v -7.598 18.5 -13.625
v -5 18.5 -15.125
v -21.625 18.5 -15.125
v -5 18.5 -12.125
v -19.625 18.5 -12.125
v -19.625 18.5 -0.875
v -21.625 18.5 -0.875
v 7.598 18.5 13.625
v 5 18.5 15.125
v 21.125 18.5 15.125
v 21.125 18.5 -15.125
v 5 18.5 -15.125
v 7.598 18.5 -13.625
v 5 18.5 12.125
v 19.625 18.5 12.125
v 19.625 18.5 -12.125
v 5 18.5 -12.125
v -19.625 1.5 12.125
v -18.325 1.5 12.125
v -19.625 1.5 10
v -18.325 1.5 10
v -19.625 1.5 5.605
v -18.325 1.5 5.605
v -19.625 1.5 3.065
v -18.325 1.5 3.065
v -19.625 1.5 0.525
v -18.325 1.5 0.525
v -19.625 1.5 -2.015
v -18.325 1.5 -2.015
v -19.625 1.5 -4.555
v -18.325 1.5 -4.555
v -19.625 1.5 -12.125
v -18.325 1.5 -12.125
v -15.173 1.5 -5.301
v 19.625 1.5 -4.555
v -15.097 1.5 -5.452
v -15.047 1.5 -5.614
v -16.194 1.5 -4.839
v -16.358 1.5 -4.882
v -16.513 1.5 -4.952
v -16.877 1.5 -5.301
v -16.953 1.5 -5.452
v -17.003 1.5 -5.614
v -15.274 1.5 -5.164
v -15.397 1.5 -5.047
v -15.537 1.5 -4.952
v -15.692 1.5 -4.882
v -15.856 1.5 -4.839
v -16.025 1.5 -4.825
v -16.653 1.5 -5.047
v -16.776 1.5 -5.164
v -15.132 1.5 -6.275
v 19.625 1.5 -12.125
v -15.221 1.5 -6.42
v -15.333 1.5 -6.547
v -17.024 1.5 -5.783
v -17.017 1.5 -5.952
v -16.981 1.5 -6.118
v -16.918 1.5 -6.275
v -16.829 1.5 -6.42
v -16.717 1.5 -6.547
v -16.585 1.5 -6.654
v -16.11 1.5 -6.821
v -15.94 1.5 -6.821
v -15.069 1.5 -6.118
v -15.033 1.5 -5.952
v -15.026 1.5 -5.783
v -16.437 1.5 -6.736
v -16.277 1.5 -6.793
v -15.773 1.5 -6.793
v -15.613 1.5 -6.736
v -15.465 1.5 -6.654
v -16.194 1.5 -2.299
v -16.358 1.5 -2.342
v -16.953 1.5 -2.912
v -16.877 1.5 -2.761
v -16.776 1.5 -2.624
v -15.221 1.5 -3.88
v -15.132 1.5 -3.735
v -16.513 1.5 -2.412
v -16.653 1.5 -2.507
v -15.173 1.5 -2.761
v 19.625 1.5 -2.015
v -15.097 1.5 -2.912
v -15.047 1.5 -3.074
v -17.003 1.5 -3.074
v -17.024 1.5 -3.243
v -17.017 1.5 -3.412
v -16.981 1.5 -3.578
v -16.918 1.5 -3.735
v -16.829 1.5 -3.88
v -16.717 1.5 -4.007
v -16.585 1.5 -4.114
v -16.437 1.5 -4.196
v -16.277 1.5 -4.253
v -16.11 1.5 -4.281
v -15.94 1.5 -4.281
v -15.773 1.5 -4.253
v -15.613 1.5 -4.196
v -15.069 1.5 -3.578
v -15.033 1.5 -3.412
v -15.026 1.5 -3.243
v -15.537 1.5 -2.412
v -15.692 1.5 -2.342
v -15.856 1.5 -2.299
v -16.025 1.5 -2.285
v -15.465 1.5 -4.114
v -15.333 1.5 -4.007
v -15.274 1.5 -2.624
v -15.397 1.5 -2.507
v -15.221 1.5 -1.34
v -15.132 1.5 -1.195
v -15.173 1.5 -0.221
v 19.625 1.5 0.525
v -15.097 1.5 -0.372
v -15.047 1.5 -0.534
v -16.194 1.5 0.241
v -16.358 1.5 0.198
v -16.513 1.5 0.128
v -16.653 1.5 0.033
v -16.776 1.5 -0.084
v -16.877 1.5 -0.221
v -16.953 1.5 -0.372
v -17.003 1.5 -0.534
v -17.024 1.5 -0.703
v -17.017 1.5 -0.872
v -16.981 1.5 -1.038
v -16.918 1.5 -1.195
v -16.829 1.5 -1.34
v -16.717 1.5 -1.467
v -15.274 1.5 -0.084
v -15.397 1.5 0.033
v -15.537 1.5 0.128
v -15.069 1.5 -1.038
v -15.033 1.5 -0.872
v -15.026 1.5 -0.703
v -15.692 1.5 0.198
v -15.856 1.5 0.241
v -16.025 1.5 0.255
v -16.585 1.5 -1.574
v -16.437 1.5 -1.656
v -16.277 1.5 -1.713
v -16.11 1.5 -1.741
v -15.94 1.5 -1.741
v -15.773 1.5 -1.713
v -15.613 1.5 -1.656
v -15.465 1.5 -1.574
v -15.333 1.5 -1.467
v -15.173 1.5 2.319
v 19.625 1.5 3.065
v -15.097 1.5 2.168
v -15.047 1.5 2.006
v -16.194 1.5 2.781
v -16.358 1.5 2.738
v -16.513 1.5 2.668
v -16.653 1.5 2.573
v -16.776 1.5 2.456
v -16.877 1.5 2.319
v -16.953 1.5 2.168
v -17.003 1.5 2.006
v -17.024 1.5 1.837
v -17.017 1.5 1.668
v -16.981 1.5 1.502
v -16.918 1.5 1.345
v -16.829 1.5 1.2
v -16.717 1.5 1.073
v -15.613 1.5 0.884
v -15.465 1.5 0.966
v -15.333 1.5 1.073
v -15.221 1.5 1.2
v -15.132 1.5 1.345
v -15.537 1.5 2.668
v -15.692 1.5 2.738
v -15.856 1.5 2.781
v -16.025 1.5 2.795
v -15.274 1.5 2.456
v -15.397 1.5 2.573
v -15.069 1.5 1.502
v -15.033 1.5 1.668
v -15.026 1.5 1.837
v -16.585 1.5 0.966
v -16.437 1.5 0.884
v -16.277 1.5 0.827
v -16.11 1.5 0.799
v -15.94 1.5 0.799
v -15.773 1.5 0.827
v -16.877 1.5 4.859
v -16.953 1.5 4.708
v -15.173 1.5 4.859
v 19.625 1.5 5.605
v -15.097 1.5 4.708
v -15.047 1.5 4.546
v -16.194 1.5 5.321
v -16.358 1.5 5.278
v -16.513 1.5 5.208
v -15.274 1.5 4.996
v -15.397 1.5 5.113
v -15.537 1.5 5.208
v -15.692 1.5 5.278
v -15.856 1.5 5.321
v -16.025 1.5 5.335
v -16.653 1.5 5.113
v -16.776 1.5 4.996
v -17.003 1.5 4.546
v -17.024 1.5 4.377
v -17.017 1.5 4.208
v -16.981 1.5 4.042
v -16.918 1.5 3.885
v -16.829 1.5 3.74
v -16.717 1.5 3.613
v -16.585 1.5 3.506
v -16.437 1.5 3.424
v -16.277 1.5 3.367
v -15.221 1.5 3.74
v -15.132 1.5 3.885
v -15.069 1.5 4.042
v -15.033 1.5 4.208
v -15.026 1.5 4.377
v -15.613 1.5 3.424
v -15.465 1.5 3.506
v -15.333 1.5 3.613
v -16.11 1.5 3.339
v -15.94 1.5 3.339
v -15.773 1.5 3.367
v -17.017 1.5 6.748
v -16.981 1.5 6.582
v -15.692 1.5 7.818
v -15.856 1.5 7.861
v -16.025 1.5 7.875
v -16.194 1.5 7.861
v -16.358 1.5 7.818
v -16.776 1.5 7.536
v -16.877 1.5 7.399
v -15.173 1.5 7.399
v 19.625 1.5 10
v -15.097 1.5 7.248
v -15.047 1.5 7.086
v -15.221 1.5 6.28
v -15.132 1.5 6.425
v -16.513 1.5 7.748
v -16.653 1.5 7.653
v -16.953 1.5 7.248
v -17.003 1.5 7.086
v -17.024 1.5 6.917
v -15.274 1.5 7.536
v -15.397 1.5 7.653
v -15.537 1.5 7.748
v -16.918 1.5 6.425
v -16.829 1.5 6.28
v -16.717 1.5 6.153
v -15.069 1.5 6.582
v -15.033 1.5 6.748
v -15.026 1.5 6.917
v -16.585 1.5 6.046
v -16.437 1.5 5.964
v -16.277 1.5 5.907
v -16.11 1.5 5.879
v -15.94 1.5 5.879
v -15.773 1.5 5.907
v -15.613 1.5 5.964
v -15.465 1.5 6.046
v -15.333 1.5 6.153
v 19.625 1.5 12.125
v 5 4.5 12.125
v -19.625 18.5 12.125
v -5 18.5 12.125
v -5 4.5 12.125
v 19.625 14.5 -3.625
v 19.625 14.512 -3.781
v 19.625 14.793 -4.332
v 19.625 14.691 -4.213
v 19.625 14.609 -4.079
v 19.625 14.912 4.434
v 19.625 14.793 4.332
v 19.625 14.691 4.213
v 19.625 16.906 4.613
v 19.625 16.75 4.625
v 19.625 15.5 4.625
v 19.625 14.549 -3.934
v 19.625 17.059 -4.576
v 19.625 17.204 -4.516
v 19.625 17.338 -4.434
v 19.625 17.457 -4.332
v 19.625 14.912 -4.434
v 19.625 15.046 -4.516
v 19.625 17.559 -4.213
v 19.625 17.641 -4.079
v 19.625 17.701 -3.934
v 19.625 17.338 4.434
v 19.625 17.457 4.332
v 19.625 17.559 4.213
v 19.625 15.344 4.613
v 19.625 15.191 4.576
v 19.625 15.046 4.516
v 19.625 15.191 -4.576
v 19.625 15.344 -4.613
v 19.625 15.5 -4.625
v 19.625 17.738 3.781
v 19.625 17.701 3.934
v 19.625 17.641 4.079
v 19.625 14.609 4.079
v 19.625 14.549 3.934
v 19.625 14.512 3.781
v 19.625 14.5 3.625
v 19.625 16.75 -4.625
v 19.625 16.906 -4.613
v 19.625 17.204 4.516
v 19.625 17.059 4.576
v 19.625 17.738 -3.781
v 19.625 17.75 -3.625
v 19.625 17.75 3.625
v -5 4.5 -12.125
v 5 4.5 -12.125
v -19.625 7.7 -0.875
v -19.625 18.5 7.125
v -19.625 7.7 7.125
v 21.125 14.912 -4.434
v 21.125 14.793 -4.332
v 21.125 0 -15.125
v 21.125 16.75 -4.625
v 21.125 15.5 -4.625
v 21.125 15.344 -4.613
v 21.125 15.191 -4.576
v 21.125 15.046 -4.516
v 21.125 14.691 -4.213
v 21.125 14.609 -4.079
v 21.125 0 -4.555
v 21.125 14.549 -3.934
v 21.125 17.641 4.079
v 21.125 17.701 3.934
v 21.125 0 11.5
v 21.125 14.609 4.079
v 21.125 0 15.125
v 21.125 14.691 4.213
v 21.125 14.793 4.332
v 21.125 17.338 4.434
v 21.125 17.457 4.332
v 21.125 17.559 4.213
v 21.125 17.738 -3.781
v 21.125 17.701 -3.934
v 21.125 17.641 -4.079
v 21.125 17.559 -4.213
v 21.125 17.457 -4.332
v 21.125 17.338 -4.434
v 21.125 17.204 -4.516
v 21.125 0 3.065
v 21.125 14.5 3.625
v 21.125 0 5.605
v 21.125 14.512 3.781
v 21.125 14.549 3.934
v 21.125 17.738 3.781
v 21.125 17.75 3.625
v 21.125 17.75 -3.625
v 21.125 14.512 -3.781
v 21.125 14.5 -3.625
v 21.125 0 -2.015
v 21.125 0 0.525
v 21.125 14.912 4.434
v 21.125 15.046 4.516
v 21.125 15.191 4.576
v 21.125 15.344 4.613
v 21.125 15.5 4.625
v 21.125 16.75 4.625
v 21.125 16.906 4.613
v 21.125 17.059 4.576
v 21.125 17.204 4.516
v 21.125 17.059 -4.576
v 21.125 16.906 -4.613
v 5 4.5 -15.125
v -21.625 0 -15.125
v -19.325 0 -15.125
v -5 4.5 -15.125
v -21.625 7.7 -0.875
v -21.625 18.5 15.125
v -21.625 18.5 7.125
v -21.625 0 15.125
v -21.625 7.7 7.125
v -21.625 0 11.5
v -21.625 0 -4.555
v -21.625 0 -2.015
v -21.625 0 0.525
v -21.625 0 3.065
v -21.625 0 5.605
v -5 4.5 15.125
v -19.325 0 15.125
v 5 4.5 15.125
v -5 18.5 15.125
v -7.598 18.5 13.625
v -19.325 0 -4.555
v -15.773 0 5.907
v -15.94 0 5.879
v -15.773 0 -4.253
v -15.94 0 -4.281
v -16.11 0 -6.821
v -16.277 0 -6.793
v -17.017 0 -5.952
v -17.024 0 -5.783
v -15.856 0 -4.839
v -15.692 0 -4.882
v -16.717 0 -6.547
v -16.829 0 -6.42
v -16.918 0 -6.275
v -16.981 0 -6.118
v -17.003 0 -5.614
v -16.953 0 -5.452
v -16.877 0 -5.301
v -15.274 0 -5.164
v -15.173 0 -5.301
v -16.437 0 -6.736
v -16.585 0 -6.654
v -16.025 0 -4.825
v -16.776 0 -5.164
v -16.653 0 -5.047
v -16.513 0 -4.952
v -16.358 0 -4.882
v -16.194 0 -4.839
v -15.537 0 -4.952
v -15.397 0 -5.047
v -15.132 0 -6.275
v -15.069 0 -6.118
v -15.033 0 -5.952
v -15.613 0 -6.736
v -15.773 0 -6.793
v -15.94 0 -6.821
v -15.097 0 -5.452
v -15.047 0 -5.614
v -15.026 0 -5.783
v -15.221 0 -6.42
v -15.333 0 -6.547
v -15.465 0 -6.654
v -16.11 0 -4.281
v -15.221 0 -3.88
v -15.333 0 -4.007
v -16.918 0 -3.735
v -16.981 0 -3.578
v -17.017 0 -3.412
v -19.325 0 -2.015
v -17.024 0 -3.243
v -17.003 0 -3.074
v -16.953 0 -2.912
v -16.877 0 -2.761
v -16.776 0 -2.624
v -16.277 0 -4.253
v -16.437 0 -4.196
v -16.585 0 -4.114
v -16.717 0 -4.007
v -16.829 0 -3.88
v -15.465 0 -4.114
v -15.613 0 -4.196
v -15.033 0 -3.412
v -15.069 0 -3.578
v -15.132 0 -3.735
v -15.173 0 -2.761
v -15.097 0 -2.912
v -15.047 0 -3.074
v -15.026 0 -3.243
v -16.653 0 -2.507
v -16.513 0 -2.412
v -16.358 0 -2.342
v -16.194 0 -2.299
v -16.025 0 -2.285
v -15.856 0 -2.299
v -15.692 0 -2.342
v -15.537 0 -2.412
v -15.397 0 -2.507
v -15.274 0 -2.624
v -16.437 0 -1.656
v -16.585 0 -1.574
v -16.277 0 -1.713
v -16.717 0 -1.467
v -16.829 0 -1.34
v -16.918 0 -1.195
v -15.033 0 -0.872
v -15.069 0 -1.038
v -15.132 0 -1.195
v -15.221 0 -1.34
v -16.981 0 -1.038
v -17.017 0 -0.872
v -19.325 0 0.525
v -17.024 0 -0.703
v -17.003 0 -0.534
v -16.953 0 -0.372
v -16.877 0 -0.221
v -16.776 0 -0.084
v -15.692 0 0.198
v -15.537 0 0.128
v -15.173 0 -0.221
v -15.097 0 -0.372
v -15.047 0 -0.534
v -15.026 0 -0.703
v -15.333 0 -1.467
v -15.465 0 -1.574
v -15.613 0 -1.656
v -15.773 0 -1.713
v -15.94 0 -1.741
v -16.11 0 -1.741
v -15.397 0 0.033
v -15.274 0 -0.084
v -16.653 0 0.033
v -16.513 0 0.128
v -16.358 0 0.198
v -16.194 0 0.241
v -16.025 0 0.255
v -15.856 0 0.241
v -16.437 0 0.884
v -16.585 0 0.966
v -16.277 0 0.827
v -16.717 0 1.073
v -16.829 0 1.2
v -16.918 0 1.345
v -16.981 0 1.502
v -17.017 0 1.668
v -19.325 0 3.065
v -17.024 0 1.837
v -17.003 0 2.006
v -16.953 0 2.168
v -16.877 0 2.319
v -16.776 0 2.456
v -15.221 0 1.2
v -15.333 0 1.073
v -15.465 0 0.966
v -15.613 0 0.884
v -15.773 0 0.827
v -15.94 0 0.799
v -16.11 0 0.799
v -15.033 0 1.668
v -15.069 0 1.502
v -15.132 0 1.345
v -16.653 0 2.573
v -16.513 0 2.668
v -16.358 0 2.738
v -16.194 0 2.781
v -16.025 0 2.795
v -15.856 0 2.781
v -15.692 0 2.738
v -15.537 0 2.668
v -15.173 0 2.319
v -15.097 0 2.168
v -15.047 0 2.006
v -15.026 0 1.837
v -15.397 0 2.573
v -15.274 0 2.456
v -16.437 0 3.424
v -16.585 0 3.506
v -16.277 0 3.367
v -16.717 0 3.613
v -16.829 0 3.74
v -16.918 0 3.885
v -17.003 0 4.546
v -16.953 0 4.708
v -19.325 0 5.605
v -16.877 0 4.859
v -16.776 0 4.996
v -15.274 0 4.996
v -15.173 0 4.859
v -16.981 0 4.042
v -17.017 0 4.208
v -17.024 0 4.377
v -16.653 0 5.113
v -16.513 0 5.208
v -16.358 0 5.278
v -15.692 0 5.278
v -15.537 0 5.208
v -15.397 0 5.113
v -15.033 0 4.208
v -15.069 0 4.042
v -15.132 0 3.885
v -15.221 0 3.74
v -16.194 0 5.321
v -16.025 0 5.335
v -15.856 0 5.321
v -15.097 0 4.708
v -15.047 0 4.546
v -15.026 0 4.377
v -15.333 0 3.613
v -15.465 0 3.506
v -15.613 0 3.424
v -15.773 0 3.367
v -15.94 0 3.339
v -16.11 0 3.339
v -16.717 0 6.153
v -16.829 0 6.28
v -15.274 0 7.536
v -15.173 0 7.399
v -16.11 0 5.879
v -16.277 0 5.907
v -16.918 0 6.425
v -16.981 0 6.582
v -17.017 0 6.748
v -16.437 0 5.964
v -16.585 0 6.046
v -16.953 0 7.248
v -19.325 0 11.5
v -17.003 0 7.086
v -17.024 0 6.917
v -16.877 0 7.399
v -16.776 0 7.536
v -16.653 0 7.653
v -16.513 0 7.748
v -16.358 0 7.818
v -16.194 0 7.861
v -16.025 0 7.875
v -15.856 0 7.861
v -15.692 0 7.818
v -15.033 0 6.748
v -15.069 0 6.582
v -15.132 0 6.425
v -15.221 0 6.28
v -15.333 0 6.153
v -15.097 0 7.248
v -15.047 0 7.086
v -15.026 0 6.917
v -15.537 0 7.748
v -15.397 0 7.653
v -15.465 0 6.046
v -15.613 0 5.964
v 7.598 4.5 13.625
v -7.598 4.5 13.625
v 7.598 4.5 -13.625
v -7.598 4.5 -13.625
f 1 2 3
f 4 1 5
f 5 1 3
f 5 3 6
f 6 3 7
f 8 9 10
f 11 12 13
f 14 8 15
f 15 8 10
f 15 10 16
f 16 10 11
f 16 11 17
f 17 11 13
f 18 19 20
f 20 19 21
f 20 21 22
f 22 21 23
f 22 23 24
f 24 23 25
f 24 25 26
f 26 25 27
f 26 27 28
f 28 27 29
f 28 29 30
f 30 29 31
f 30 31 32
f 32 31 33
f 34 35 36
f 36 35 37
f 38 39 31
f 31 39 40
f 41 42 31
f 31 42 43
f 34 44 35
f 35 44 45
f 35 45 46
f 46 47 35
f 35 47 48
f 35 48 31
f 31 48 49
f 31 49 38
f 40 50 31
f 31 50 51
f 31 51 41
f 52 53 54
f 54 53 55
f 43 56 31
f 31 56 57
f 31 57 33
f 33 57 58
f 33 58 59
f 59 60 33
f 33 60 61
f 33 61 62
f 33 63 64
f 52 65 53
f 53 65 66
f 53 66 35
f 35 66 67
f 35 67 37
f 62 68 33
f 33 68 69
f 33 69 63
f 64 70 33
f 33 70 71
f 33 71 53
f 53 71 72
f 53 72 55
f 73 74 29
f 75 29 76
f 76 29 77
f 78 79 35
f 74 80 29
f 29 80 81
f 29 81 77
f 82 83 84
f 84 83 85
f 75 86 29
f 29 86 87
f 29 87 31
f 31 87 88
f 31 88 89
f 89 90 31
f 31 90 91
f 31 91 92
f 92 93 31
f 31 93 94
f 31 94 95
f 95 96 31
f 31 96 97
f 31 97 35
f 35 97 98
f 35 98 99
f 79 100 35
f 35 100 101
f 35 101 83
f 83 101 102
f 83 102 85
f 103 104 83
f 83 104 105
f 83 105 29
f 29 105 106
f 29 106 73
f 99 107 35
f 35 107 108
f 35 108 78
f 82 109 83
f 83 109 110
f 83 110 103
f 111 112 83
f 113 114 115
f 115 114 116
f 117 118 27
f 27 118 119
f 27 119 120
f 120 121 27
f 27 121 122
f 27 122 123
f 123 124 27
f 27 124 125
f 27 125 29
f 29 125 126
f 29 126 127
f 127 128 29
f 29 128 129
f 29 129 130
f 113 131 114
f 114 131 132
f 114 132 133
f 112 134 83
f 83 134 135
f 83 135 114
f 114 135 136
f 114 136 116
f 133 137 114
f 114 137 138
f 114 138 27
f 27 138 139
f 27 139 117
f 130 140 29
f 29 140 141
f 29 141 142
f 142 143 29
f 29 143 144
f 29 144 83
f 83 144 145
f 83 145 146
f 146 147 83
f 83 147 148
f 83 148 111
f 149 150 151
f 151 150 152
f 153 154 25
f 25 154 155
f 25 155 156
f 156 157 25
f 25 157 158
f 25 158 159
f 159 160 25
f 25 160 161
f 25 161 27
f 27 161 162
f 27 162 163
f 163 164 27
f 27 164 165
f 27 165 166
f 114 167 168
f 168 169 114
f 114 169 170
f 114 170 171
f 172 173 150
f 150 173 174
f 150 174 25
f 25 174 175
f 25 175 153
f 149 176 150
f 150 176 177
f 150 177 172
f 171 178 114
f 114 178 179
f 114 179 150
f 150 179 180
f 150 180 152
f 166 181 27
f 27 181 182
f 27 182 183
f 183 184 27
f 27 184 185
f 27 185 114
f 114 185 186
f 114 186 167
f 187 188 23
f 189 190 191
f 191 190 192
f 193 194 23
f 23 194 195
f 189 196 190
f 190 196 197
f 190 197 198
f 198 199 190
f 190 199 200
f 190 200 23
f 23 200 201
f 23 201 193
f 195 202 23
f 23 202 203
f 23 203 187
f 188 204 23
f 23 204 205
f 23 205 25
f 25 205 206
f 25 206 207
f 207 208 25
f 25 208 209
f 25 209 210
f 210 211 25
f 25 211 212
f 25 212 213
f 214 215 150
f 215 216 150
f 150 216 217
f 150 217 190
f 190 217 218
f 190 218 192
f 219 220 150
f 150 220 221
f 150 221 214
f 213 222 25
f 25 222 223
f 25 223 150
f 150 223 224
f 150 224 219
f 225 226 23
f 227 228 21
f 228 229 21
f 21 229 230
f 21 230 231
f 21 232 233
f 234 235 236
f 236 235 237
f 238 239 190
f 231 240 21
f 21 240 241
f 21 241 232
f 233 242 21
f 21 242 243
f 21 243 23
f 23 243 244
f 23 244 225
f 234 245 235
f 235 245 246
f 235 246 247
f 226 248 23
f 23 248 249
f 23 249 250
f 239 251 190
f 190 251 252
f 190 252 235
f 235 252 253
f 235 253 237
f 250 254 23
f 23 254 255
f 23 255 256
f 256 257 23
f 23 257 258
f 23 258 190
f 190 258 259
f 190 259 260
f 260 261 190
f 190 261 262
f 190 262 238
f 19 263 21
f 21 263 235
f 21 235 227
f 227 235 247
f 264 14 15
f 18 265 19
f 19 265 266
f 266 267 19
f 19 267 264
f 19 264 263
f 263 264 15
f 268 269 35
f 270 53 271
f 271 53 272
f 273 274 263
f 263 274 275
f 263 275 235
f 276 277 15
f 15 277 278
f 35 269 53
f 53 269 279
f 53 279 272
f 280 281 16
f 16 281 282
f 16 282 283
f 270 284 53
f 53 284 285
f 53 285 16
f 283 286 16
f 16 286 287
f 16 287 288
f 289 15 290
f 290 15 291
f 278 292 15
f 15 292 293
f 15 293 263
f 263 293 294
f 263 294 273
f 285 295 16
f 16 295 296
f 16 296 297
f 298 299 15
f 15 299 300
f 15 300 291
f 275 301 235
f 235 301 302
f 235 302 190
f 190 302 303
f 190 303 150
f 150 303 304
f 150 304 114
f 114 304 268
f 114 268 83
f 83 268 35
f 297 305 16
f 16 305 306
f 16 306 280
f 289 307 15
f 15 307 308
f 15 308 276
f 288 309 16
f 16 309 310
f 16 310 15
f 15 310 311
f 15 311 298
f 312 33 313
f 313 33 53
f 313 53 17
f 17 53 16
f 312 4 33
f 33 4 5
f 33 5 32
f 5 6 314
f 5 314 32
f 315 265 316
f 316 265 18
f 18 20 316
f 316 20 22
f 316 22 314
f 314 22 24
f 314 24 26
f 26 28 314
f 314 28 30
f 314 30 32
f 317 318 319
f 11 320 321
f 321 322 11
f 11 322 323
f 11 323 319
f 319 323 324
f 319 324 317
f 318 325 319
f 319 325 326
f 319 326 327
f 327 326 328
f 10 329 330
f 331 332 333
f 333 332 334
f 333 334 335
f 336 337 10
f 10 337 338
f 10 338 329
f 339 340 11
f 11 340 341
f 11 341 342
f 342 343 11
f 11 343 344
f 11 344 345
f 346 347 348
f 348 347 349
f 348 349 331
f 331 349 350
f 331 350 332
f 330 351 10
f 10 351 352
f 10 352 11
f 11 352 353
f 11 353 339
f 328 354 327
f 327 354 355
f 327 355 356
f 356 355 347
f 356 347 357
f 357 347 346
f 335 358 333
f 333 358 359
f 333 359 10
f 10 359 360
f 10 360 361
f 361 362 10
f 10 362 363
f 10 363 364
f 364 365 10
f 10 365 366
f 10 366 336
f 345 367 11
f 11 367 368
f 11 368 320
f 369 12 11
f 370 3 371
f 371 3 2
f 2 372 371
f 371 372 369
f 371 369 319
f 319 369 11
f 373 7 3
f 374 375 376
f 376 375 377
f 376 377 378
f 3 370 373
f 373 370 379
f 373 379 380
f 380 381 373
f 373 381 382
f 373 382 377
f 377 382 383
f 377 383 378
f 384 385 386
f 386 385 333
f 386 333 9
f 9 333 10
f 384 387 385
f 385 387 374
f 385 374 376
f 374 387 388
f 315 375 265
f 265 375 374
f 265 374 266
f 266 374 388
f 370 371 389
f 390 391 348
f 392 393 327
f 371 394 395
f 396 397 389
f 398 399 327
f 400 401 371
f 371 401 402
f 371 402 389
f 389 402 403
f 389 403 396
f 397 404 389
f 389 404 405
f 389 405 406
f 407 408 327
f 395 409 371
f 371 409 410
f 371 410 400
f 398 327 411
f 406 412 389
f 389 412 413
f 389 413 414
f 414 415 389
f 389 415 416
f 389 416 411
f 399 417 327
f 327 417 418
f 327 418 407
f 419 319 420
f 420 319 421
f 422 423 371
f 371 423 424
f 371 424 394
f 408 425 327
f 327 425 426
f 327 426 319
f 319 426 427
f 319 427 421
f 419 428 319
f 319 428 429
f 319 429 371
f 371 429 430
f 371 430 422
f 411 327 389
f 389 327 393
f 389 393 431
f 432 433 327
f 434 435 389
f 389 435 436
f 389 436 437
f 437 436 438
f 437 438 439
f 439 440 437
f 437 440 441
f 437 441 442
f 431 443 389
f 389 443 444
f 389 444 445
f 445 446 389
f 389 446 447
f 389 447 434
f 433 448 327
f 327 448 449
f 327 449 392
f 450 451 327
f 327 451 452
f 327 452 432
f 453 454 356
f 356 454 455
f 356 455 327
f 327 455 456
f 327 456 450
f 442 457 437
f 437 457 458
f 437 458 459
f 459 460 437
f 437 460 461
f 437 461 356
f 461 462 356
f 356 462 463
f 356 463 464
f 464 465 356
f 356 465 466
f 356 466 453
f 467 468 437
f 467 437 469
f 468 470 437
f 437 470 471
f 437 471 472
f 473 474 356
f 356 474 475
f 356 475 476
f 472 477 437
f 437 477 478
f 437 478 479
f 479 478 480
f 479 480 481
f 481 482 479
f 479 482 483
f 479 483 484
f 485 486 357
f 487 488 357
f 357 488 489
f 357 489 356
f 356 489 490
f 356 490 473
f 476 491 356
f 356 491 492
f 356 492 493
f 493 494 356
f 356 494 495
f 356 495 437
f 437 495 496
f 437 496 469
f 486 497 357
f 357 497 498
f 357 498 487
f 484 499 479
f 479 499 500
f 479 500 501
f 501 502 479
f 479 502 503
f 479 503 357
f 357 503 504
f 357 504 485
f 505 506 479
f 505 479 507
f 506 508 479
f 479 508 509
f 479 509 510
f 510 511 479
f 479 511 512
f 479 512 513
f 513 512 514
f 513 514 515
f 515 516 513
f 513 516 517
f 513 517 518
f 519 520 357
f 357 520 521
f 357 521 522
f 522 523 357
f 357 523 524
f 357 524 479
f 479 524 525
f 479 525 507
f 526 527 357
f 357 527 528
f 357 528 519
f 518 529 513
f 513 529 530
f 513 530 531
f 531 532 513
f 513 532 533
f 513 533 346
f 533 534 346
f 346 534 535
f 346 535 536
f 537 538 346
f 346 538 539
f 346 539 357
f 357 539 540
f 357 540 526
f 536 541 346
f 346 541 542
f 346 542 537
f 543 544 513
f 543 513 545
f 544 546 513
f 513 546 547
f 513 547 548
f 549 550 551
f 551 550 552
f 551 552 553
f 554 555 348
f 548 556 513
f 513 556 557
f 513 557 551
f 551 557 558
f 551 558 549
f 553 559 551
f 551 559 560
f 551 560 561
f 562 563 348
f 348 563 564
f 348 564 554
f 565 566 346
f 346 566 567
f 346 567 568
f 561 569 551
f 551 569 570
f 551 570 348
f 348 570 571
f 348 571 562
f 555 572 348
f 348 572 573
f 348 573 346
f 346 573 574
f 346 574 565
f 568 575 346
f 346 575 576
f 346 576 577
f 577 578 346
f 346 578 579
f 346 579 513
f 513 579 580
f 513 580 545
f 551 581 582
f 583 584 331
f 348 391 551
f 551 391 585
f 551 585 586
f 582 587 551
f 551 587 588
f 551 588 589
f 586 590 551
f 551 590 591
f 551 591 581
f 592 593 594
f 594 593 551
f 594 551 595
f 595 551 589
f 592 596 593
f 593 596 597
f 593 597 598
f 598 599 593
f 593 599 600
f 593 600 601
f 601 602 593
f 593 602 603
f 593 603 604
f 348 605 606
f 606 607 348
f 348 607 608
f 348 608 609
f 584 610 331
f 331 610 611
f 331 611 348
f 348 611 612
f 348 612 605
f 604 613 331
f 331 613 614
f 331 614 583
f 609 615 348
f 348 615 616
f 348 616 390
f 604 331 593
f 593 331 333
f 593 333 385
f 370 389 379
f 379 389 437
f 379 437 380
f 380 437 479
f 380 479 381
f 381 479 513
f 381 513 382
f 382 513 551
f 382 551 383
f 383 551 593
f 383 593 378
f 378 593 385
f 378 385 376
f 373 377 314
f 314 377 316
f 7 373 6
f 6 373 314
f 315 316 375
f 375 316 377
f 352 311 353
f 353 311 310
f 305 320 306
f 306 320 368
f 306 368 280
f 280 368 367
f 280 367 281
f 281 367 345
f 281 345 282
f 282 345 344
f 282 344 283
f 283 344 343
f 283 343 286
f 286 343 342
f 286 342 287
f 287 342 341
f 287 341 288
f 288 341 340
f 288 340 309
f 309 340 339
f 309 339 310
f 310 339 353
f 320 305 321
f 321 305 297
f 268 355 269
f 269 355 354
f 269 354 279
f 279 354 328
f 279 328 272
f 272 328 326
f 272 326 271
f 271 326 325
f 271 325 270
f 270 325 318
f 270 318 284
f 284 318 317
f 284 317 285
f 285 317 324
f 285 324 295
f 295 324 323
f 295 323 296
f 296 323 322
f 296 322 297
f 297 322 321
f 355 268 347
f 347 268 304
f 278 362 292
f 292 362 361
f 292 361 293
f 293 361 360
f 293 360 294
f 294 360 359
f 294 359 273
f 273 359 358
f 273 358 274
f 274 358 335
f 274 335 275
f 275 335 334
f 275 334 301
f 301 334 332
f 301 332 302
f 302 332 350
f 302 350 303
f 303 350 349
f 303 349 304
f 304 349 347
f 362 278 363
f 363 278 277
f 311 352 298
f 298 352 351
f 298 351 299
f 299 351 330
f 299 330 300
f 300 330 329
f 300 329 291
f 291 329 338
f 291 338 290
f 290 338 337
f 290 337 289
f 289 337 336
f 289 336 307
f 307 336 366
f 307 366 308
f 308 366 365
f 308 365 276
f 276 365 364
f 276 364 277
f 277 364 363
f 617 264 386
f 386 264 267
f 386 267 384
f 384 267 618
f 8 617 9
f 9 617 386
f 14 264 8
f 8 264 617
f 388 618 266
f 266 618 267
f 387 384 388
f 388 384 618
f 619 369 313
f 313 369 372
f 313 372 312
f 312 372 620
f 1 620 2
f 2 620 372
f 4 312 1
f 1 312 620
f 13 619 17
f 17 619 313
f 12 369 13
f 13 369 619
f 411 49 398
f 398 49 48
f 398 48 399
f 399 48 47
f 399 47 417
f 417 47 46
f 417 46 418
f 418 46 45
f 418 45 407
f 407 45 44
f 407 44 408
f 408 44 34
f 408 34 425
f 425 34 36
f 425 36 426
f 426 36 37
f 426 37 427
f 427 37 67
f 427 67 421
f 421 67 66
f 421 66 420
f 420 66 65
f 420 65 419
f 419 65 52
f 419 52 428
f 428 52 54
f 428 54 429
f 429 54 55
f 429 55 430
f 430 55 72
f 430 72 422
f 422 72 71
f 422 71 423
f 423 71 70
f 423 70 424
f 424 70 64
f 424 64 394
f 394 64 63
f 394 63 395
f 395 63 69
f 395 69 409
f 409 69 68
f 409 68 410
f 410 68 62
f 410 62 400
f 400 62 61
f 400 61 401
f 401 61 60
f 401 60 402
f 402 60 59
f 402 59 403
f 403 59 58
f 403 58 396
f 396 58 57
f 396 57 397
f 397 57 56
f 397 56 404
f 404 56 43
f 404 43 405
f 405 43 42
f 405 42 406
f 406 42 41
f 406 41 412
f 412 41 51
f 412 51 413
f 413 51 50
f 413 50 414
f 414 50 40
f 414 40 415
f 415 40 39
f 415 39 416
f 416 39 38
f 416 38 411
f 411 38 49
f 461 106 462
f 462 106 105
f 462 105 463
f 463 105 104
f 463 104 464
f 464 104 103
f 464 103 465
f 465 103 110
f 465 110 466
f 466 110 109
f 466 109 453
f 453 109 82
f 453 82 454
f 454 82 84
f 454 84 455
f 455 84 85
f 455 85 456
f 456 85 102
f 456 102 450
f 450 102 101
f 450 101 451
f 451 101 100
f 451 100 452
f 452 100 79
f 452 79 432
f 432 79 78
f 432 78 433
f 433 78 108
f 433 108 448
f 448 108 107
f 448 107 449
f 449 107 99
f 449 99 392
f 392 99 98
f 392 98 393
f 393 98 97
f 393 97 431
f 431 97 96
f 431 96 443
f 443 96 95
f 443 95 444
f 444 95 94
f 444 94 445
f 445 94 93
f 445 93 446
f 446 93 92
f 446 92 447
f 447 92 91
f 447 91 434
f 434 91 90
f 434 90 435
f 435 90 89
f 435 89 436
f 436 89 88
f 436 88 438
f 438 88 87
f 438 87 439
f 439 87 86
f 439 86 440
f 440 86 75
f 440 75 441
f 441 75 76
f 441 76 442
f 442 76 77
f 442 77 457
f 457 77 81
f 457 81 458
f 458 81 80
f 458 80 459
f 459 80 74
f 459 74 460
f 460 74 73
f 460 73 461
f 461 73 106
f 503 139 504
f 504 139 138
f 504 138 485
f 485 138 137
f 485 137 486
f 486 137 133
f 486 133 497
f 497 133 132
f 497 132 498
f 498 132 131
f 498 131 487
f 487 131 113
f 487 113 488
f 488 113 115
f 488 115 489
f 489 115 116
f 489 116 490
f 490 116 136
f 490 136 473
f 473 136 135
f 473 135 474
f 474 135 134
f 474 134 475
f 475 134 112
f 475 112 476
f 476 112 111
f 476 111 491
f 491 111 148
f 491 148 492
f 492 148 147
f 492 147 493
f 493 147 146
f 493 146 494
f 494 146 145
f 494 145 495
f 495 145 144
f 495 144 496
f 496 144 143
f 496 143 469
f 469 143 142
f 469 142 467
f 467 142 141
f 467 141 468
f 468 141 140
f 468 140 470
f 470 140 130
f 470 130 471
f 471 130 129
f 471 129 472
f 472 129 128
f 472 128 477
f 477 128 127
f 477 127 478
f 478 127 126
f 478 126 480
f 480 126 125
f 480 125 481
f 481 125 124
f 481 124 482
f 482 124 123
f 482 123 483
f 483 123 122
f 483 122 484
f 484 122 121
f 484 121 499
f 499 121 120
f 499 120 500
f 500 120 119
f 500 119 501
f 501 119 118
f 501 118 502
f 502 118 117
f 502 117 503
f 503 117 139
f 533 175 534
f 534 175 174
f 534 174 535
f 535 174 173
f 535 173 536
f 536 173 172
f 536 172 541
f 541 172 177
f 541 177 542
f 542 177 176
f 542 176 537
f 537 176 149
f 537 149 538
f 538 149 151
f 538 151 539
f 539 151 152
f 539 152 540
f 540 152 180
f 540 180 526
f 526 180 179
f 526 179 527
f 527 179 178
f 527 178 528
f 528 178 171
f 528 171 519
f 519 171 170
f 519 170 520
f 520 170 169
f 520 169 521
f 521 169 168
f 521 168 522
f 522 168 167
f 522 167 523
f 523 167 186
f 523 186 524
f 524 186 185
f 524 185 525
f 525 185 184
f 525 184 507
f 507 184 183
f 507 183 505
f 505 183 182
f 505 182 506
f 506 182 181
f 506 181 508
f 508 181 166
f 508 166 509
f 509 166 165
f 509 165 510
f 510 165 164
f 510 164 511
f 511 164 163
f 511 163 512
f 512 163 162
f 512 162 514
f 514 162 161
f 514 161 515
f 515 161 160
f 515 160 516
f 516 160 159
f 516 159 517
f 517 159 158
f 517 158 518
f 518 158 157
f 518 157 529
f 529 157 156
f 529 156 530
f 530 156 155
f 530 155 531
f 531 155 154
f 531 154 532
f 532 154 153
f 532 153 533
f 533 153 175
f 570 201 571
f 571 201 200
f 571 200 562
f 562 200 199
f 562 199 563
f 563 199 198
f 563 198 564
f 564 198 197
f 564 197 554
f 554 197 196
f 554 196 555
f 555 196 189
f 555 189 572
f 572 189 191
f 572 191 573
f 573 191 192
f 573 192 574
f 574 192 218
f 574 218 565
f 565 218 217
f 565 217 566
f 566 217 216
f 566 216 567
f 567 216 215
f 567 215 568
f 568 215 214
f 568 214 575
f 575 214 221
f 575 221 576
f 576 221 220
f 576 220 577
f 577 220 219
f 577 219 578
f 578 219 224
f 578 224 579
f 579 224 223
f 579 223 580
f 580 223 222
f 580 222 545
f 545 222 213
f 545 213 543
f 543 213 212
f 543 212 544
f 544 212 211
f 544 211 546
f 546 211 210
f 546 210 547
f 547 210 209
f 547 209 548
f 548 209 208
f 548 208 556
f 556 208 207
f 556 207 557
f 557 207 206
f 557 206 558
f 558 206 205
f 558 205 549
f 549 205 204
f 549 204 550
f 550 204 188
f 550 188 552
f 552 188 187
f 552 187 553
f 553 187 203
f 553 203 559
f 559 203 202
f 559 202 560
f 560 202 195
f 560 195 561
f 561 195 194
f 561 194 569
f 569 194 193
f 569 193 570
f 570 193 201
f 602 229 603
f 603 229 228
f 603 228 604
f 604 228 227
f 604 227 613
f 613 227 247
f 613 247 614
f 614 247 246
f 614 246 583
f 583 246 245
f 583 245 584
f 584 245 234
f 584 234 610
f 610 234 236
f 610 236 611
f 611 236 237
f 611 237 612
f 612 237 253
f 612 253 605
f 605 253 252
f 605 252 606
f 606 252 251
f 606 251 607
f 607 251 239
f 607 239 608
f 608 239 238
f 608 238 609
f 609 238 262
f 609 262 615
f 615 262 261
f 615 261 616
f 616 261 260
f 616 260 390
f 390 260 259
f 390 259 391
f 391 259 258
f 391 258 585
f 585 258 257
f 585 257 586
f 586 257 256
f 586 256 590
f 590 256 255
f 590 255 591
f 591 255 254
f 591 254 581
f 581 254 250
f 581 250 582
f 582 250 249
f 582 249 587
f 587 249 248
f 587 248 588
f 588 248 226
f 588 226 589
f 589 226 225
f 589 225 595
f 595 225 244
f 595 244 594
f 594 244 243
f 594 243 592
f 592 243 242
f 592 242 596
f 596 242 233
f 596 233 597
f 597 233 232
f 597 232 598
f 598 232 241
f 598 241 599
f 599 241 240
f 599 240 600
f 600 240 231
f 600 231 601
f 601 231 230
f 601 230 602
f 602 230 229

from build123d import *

# Parameters (mm, degrees)
SKETCH1_W           = 39.25
SKETCH1_H           = 24.25
BOSS_EXTRUDE1_DEPTH = 1.5
SKETCH2_W           = 42.75
SKETCH2_H           = 30.25
SKETCH2_W_2         = 39.25
SKETCH2_H_2         = 24.25
BOSS_EXTRUDE2_DEPTH = 18.5
SKETCH3_W           = 2
SKETCH3_H           = 8
CUT_EXTRUDE1_DEPTH  = 10.8
CUT_EXTRUDE2_REACH  = 44.75
CUT_EXTRUDE3_DEPTH  = 14
SKETCH7_R           = 1
CUT_EXTRUDE4_DEPTH  = 2.5


with BuildPart() as part:
    # Sketch1 → Boss-Extrude1 (new body)
    with BuildSketch(Plane(origin=(0, 0, 0), x_dir=(1, 0, 0), z_dir=(0, 1, 0))):
        Rectangle(SKETCH1_W, SKETCH1_H)
    extrude(amount=BOSS_EXTRUDE1_DEPTH)

    # Sketch2 → Boss-Extrude2 (add)
    with BuildSketch(Plane(origin=(0, 0, 0), x_dir=(1, 0, 0), z_dir=(0, 1, 0))):
        with Locations((-0.25, 0)):
            Rectangle(SKETCH2_W, SKETCH2_H)
        Rectangle(SKETCH2_W_2, SKETCH2_H_2, mode=Mode.SUBTRACT)
    extrude(amount=BOSS_EXTRUDE2_DEPTH)

    # Sketch3 → Cut-Extrude1 (cut)
    with BuildSketch(Plane(origin=(0, 18.5, 0), x_dir=(1, 0, 0), z_dir=(0, 1, 0))):
        with Locations((-20.625, -3.125)):
            Rectangle(SKETCH3_W, SKETCH3_H)
    extrude(amount=-CUT_EXTRUDE1_DEPTH, mode=Mode.SUBTRACT)

    # Sketch4 → Cut-Extrude2 (cut, up to next)
    with BuildSketch(Plane(origin=(21.125, 0, 0), x_dir=(0, 0, -1), z_dir=(1, 0, 0)), mode=Mode.PRIVATE) as cut_extrude2_sk1:
        with BuildLine():
            Line((-3.625, 14.5), (3.625, 14.5))
            ThreePointArc((3.625, 14.5), (4.332106781, 14.792893219), (4.625, 15.5))
            Line((4.625, 15.5), (4.625, 16.75))
            ThreePointArc((4.625, 16.75), (4.332106781, 17.457106781), (3.625, 17.75))
            Line((3.625, 17.75), (-3.625, 17.75))
            ThreePointArc((-3.625, 17.75), (-4.332106781, 17.457106781), (-4.625, 16.75))
            Line((-4.625, 16.75), (-4.625, 15.5))
            ThreePointArc((-4.625, 15.5), (-4.332106781, 14.792893219), (-3.625, 14.5))
        make_face()
    cut_extrude2_tool1 = extrude(cut_extrude2_sk1.sketch, amount=-CUT_EXTRUDE2_REACH, mode=Mode.PRIVATE) & part.part
    add(cut_extrude2_tool1.solids().sort_by_distance((21.125, 16.125, 0))[0], mode=Mode.SUBTRACT)

    # Sketch6 → Cut-Extrude3 (cut)
    with BuildSketch(Plane(origin=(0, 18.5, 0), x_dir=(1, 0, 0), z_dir=(0, 1, 0))):
        Polygon((-5, 15.125), (-7.598076211, 13.625), (-5, 12.125), (5, 12.125), (7.598076211, 13.625), (5, 15.125), align=None)
        Polygon((-7.598076211, -13.625), (-5, -12.125), (5, -12.125), (7.598076211, -13.625), (5, -15.125), (-5, -15.125), align=None)
    extrude(amount=-CUT_EXTRUDE3_DEPTH, mode=Mode.SUBTRACT)

    # Sketch7 → Cut-Extrude4 (cut, through all)
    with BuildSketch(Plane(origin=(0, 1.5, 0), x_dir=(1, 0, 0), z_dir=(0, 1, 0))):
        with Locations((-16.025, -6.875)):
            Circle(SKETCH7_R)
        with Locations((-16.025, -4.335)):
            Circle(SKETCH7_R)
        with Locations((-16.025, -1.795)):
            Circle(SKETCH7_R)
        with Locations((-16.025, 0.745)):
            Circle(SKETCH7_R)
        with Locations((-16.025, 3.285)):
            Circle(SKETCH7_R)
        with Locations((-16.025, 5.825)):
            Circle(SKETCH7_R)
    extrude(amount=-CUT_EXTRUDE4_DEPTH, mode=Mode.SUBTRACT)


solid = part.part
